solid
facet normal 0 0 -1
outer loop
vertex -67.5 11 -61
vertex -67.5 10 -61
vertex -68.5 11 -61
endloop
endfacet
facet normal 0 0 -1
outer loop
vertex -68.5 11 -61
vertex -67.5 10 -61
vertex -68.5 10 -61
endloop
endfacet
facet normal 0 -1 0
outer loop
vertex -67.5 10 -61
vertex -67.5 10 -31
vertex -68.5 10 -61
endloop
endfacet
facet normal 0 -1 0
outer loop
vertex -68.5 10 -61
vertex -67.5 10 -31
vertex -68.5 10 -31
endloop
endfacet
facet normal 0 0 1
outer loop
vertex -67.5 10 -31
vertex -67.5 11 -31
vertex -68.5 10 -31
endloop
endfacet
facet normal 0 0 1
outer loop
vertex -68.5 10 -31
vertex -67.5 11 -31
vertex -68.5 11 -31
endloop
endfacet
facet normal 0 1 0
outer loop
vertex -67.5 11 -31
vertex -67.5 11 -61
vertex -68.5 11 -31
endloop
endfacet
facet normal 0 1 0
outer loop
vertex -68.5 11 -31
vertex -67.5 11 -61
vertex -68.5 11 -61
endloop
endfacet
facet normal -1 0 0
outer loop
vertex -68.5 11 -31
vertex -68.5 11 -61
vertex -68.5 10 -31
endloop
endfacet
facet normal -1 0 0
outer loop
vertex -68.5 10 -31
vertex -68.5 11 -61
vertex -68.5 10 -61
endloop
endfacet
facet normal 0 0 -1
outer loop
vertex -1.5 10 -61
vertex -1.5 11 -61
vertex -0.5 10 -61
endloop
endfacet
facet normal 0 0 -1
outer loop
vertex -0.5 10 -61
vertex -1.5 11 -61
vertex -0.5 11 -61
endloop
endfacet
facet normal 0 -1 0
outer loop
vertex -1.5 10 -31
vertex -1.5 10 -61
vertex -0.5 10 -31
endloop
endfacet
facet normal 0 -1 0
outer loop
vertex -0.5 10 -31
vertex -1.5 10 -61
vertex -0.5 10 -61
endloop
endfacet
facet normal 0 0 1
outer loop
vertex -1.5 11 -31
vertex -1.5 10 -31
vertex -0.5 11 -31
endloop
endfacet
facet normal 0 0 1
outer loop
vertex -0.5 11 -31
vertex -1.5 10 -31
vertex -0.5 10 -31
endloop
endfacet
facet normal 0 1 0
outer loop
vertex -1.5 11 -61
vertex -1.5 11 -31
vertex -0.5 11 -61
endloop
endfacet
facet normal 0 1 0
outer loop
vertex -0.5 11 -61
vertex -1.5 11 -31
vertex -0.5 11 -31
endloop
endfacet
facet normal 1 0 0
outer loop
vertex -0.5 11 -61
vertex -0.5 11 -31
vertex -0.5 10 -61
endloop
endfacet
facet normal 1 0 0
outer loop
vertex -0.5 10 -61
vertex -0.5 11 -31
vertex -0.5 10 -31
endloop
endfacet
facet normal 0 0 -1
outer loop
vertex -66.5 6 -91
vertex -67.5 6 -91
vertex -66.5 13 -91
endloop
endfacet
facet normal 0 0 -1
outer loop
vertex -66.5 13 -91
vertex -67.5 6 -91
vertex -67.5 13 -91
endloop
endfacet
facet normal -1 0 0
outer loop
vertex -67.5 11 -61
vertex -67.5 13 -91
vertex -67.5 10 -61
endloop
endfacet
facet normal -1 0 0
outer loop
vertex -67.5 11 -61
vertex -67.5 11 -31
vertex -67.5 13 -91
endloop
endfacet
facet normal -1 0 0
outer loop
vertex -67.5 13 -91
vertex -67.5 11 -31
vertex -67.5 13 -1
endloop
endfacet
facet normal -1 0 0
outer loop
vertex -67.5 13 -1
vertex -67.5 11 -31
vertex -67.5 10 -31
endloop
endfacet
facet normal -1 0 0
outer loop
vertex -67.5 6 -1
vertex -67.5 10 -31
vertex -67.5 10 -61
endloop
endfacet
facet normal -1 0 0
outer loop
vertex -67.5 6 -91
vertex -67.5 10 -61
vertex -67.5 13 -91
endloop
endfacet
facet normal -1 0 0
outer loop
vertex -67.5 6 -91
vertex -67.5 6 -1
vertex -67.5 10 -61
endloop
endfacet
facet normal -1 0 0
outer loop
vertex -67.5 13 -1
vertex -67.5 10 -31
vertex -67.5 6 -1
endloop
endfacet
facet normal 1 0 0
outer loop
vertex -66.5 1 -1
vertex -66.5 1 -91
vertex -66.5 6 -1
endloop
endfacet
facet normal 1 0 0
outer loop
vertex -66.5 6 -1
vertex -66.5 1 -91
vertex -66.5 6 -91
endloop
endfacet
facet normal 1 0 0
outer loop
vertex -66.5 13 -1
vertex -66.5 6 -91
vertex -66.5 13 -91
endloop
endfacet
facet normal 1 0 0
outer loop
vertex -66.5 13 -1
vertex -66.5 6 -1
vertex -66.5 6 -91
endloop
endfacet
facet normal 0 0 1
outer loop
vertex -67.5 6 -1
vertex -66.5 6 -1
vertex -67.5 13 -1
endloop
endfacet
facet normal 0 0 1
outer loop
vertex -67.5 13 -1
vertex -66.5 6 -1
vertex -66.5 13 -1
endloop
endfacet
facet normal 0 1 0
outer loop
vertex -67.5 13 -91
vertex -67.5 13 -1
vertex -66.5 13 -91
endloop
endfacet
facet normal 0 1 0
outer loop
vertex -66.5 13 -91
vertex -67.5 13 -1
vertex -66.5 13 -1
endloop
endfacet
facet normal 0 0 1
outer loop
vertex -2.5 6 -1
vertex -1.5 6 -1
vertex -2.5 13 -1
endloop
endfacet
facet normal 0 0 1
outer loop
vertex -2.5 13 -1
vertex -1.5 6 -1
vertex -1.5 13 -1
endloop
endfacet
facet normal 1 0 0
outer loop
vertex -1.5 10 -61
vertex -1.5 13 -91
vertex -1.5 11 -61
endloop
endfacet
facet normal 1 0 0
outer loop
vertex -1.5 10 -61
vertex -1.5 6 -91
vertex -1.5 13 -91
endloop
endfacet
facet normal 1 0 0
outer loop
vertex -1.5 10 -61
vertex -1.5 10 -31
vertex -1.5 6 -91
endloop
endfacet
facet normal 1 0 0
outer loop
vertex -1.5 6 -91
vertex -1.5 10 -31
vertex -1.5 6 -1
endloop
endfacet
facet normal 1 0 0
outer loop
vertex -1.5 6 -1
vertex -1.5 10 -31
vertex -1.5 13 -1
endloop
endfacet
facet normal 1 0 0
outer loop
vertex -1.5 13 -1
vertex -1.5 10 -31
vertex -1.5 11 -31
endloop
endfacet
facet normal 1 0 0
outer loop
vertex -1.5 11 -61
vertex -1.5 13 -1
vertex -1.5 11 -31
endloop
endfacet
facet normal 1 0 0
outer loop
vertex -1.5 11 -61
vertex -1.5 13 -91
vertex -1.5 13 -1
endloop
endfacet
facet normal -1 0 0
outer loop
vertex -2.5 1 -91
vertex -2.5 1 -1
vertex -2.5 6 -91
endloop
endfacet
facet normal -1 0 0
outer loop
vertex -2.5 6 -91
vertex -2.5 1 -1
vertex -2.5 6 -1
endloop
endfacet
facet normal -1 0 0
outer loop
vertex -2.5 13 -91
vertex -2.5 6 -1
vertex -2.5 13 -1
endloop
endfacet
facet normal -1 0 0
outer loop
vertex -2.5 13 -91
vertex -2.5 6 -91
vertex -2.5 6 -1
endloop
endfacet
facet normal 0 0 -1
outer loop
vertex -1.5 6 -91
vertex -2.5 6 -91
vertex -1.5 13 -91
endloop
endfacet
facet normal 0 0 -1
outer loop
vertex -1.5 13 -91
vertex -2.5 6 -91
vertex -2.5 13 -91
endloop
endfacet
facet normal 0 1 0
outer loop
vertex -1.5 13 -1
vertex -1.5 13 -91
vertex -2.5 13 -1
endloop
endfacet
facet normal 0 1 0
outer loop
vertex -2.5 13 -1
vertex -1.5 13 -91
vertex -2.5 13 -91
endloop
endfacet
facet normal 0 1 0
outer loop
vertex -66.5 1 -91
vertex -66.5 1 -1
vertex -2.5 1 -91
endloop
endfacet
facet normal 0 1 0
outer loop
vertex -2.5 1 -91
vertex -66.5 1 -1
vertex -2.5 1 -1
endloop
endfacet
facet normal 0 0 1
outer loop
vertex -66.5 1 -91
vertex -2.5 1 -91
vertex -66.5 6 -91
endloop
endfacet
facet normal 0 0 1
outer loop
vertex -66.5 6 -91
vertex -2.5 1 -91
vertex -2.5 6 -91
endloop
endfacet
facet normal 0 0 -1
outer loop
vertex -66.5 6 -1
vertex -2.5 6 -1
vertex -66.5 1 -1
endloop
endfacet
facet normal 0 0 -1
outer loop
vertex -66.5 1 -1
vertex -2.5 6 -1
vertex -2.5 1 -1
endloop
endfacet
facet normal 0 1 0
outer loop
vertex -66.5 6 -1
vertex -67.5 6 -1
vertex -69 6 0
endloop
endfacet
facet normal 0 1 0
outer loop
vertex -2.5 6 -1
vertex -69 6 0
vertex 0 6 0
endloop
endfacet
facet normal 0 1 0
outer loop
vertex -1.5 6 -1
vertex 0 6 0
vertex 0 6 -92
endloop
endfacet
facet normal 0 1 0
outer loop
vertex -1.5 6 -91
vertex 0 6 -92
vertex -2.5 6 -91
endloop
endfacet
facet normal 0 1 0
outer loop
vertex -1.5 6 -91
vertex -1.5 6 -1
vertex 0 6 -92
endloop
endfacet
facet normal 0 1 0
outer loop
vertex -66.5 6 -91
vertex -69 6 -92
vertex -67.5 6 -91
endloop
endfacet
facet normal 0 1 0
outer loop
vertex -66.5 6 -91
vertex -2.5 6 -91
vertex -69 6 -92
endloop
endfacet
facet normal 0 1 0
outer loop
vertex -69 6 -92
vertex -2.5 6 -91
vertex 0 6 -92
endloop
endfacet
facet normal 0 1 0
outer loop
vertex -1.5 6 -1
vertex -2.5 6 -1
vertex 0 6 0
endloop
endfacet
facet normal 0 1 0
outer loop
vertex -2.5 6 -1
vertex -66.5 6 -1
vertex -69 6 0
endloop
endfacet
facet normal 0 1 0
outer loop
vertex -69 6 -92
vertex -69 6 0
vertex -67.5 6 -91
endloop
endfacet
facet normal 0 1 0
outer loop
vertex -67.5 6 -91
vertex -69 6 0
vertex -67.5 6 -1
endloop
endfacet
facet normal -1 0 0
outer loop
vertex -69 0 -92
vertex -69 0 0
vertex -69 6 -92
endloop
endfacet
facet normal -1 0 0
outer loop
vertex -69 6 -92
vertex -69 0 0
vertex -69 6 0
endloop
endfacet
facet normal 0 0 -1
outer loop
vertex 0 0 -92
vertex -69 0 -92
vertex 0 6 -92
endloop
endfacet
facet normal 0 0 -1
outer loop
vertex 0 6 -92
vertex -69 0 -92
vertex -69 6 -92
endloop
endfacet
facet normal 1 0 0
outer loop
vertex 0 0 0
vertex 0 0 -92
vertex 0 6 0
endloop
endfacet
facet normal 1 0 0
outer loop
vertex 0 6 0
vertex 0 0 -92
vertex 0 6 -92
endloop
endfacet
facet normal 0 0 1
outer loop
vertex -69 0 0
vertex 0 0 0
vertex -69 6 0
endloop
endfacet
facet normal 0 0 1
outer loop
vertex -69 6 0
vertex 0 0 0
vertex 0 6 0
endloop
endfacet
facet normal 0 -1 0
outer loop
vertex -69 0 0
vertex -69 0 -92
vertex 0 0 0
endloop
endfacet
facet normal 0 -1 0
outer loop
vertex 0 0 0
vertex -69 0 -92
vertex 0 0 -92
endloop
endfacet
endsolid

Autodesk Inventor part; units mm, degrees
ref_plane "YZ Plane" through (0, 0, 0) normal (1, 0, 0) x (0, 1, 0)
ref_plane "XZ Plane" through (0, 0, 0) normal (0, 1, 0) x (-1, 0, 0)
ref_plane "XY Plane" through (0, 0, 0) normal (0, 0, 1) x (1, 0, 0)
sketch "Sketch1" plane through (0, 0, 0) normal (0, 1, 0) x (-1, 0, 0)
  line L0 (0, 0) -> (69, 0)
  line L1 (69, 0) -> (69, -92)
  line L2 (69, -92) -> (0, -92)
  line L3 (0, -92) -> (0, 0)
  dimension "d0" = 69
  dimension "d1" = 92
extrude "Extrusion1" add sketch "Sketch1" along normal blind 1
sketch "Sketch2" plane through (0, 1, 0) normal (0, 1, 0) x (1, 0, 0)
  line L0 (-69, 0) -> (0, 0) projected
  line L1 (0, 0) -> (0, 92) projected
  line L2 (0, 92) -> (-69, 92) projected
  line L3 (-69, 92) -> (-69, 0) projected
  line L4 (-68, 1) -> (-1, 1)
  line L5 (-1, 1) -> (-1, 91)
  line L6 (-1, 91) -> (-68, 91)
  line L7 (-68, 91) -> (-68, 1)
  line L8 (-67.5, 1) -> (-67.5, 91)
  line L9 (-1.5, 1) -> (-1.5, 91)
  dimension "d4" = 1
  dimension "d5" = 0.5
  dimension "d6" = 0.5
extrude "Extrusion2" add sketch "Sketch2" along normal blind 5 contours L3 L2 L1 L0 | L7 L6 L8 L4 | L9 L6 L5 L4
sketch "Sketch3" plane through (0, 1, 0) normal (0, 1, 0) x (1, 0, 0)
  line L0 (-67.5, 91) -> (-67.5, 1) projected
  line L1 (-67.5, 1) -> (-1.5, 1) projected
  line L2 (-1.5, 1) -> (-1.5, 91) projected
  line L3 (-1.5, 91) -> (-67.5, 91) projected
  line L4 (-67.5, 1) -> (-1.5, 1) projected
  line L5 (-66.5, 1) -> (-66.5, 91)
  line L6 (-2.5, 1) -> (-2.5, 91)
  point P0 (0, 0)
  dimension "d9" = 1
  dimension "d10" = 1
extrude "Extrusion3" add sketch "Sketch3" along normal blind 12 contours L3 L5 L1 L0 | L3 L2 L1 L6
sketch "Sketch4" plane through (-1.5, 6, -91) normal (1, 0, 0) x (0, 0, -1)
  line L0 (-90, 0) -> (-90, 7) projected
  line L1 (-90, 4) -> (-90, 5)
  line L2 (0, 0) -> (0, 7) projected
  line L3 (-90, 7) -> (0, 7) projected
  line L4 (-60, 5) -> (-30, 5)
  line L5 (-30, 5) -> (-30, 4)
  line L6 (-30, 4) -> (-60, 4)
  line L7 (-60, 4) -> (-60, 5)
  line L8 (0, 0) -> (-90, 0) projected
  point P0 (-91, -6)
  dimension "d21" = 1
  dimension "d22" = 2
  dimension "d23" = 4
  dimension "d24" = 30
  dimension "d25" = 30
ref_plane "Work Plane1" through (-34.5, 0, 0) normal (1, 0, 0) x (0, 0, -1)
extrude "Extrusion5" add sketch "Sketch4" along normal blind 1 contours L4 L5 L6 L7
mirror "Mirror2" about plane through (-34.5, 0, 0) normal (1, 0, 0) of "Extrusion5"
properties part number "top1"
